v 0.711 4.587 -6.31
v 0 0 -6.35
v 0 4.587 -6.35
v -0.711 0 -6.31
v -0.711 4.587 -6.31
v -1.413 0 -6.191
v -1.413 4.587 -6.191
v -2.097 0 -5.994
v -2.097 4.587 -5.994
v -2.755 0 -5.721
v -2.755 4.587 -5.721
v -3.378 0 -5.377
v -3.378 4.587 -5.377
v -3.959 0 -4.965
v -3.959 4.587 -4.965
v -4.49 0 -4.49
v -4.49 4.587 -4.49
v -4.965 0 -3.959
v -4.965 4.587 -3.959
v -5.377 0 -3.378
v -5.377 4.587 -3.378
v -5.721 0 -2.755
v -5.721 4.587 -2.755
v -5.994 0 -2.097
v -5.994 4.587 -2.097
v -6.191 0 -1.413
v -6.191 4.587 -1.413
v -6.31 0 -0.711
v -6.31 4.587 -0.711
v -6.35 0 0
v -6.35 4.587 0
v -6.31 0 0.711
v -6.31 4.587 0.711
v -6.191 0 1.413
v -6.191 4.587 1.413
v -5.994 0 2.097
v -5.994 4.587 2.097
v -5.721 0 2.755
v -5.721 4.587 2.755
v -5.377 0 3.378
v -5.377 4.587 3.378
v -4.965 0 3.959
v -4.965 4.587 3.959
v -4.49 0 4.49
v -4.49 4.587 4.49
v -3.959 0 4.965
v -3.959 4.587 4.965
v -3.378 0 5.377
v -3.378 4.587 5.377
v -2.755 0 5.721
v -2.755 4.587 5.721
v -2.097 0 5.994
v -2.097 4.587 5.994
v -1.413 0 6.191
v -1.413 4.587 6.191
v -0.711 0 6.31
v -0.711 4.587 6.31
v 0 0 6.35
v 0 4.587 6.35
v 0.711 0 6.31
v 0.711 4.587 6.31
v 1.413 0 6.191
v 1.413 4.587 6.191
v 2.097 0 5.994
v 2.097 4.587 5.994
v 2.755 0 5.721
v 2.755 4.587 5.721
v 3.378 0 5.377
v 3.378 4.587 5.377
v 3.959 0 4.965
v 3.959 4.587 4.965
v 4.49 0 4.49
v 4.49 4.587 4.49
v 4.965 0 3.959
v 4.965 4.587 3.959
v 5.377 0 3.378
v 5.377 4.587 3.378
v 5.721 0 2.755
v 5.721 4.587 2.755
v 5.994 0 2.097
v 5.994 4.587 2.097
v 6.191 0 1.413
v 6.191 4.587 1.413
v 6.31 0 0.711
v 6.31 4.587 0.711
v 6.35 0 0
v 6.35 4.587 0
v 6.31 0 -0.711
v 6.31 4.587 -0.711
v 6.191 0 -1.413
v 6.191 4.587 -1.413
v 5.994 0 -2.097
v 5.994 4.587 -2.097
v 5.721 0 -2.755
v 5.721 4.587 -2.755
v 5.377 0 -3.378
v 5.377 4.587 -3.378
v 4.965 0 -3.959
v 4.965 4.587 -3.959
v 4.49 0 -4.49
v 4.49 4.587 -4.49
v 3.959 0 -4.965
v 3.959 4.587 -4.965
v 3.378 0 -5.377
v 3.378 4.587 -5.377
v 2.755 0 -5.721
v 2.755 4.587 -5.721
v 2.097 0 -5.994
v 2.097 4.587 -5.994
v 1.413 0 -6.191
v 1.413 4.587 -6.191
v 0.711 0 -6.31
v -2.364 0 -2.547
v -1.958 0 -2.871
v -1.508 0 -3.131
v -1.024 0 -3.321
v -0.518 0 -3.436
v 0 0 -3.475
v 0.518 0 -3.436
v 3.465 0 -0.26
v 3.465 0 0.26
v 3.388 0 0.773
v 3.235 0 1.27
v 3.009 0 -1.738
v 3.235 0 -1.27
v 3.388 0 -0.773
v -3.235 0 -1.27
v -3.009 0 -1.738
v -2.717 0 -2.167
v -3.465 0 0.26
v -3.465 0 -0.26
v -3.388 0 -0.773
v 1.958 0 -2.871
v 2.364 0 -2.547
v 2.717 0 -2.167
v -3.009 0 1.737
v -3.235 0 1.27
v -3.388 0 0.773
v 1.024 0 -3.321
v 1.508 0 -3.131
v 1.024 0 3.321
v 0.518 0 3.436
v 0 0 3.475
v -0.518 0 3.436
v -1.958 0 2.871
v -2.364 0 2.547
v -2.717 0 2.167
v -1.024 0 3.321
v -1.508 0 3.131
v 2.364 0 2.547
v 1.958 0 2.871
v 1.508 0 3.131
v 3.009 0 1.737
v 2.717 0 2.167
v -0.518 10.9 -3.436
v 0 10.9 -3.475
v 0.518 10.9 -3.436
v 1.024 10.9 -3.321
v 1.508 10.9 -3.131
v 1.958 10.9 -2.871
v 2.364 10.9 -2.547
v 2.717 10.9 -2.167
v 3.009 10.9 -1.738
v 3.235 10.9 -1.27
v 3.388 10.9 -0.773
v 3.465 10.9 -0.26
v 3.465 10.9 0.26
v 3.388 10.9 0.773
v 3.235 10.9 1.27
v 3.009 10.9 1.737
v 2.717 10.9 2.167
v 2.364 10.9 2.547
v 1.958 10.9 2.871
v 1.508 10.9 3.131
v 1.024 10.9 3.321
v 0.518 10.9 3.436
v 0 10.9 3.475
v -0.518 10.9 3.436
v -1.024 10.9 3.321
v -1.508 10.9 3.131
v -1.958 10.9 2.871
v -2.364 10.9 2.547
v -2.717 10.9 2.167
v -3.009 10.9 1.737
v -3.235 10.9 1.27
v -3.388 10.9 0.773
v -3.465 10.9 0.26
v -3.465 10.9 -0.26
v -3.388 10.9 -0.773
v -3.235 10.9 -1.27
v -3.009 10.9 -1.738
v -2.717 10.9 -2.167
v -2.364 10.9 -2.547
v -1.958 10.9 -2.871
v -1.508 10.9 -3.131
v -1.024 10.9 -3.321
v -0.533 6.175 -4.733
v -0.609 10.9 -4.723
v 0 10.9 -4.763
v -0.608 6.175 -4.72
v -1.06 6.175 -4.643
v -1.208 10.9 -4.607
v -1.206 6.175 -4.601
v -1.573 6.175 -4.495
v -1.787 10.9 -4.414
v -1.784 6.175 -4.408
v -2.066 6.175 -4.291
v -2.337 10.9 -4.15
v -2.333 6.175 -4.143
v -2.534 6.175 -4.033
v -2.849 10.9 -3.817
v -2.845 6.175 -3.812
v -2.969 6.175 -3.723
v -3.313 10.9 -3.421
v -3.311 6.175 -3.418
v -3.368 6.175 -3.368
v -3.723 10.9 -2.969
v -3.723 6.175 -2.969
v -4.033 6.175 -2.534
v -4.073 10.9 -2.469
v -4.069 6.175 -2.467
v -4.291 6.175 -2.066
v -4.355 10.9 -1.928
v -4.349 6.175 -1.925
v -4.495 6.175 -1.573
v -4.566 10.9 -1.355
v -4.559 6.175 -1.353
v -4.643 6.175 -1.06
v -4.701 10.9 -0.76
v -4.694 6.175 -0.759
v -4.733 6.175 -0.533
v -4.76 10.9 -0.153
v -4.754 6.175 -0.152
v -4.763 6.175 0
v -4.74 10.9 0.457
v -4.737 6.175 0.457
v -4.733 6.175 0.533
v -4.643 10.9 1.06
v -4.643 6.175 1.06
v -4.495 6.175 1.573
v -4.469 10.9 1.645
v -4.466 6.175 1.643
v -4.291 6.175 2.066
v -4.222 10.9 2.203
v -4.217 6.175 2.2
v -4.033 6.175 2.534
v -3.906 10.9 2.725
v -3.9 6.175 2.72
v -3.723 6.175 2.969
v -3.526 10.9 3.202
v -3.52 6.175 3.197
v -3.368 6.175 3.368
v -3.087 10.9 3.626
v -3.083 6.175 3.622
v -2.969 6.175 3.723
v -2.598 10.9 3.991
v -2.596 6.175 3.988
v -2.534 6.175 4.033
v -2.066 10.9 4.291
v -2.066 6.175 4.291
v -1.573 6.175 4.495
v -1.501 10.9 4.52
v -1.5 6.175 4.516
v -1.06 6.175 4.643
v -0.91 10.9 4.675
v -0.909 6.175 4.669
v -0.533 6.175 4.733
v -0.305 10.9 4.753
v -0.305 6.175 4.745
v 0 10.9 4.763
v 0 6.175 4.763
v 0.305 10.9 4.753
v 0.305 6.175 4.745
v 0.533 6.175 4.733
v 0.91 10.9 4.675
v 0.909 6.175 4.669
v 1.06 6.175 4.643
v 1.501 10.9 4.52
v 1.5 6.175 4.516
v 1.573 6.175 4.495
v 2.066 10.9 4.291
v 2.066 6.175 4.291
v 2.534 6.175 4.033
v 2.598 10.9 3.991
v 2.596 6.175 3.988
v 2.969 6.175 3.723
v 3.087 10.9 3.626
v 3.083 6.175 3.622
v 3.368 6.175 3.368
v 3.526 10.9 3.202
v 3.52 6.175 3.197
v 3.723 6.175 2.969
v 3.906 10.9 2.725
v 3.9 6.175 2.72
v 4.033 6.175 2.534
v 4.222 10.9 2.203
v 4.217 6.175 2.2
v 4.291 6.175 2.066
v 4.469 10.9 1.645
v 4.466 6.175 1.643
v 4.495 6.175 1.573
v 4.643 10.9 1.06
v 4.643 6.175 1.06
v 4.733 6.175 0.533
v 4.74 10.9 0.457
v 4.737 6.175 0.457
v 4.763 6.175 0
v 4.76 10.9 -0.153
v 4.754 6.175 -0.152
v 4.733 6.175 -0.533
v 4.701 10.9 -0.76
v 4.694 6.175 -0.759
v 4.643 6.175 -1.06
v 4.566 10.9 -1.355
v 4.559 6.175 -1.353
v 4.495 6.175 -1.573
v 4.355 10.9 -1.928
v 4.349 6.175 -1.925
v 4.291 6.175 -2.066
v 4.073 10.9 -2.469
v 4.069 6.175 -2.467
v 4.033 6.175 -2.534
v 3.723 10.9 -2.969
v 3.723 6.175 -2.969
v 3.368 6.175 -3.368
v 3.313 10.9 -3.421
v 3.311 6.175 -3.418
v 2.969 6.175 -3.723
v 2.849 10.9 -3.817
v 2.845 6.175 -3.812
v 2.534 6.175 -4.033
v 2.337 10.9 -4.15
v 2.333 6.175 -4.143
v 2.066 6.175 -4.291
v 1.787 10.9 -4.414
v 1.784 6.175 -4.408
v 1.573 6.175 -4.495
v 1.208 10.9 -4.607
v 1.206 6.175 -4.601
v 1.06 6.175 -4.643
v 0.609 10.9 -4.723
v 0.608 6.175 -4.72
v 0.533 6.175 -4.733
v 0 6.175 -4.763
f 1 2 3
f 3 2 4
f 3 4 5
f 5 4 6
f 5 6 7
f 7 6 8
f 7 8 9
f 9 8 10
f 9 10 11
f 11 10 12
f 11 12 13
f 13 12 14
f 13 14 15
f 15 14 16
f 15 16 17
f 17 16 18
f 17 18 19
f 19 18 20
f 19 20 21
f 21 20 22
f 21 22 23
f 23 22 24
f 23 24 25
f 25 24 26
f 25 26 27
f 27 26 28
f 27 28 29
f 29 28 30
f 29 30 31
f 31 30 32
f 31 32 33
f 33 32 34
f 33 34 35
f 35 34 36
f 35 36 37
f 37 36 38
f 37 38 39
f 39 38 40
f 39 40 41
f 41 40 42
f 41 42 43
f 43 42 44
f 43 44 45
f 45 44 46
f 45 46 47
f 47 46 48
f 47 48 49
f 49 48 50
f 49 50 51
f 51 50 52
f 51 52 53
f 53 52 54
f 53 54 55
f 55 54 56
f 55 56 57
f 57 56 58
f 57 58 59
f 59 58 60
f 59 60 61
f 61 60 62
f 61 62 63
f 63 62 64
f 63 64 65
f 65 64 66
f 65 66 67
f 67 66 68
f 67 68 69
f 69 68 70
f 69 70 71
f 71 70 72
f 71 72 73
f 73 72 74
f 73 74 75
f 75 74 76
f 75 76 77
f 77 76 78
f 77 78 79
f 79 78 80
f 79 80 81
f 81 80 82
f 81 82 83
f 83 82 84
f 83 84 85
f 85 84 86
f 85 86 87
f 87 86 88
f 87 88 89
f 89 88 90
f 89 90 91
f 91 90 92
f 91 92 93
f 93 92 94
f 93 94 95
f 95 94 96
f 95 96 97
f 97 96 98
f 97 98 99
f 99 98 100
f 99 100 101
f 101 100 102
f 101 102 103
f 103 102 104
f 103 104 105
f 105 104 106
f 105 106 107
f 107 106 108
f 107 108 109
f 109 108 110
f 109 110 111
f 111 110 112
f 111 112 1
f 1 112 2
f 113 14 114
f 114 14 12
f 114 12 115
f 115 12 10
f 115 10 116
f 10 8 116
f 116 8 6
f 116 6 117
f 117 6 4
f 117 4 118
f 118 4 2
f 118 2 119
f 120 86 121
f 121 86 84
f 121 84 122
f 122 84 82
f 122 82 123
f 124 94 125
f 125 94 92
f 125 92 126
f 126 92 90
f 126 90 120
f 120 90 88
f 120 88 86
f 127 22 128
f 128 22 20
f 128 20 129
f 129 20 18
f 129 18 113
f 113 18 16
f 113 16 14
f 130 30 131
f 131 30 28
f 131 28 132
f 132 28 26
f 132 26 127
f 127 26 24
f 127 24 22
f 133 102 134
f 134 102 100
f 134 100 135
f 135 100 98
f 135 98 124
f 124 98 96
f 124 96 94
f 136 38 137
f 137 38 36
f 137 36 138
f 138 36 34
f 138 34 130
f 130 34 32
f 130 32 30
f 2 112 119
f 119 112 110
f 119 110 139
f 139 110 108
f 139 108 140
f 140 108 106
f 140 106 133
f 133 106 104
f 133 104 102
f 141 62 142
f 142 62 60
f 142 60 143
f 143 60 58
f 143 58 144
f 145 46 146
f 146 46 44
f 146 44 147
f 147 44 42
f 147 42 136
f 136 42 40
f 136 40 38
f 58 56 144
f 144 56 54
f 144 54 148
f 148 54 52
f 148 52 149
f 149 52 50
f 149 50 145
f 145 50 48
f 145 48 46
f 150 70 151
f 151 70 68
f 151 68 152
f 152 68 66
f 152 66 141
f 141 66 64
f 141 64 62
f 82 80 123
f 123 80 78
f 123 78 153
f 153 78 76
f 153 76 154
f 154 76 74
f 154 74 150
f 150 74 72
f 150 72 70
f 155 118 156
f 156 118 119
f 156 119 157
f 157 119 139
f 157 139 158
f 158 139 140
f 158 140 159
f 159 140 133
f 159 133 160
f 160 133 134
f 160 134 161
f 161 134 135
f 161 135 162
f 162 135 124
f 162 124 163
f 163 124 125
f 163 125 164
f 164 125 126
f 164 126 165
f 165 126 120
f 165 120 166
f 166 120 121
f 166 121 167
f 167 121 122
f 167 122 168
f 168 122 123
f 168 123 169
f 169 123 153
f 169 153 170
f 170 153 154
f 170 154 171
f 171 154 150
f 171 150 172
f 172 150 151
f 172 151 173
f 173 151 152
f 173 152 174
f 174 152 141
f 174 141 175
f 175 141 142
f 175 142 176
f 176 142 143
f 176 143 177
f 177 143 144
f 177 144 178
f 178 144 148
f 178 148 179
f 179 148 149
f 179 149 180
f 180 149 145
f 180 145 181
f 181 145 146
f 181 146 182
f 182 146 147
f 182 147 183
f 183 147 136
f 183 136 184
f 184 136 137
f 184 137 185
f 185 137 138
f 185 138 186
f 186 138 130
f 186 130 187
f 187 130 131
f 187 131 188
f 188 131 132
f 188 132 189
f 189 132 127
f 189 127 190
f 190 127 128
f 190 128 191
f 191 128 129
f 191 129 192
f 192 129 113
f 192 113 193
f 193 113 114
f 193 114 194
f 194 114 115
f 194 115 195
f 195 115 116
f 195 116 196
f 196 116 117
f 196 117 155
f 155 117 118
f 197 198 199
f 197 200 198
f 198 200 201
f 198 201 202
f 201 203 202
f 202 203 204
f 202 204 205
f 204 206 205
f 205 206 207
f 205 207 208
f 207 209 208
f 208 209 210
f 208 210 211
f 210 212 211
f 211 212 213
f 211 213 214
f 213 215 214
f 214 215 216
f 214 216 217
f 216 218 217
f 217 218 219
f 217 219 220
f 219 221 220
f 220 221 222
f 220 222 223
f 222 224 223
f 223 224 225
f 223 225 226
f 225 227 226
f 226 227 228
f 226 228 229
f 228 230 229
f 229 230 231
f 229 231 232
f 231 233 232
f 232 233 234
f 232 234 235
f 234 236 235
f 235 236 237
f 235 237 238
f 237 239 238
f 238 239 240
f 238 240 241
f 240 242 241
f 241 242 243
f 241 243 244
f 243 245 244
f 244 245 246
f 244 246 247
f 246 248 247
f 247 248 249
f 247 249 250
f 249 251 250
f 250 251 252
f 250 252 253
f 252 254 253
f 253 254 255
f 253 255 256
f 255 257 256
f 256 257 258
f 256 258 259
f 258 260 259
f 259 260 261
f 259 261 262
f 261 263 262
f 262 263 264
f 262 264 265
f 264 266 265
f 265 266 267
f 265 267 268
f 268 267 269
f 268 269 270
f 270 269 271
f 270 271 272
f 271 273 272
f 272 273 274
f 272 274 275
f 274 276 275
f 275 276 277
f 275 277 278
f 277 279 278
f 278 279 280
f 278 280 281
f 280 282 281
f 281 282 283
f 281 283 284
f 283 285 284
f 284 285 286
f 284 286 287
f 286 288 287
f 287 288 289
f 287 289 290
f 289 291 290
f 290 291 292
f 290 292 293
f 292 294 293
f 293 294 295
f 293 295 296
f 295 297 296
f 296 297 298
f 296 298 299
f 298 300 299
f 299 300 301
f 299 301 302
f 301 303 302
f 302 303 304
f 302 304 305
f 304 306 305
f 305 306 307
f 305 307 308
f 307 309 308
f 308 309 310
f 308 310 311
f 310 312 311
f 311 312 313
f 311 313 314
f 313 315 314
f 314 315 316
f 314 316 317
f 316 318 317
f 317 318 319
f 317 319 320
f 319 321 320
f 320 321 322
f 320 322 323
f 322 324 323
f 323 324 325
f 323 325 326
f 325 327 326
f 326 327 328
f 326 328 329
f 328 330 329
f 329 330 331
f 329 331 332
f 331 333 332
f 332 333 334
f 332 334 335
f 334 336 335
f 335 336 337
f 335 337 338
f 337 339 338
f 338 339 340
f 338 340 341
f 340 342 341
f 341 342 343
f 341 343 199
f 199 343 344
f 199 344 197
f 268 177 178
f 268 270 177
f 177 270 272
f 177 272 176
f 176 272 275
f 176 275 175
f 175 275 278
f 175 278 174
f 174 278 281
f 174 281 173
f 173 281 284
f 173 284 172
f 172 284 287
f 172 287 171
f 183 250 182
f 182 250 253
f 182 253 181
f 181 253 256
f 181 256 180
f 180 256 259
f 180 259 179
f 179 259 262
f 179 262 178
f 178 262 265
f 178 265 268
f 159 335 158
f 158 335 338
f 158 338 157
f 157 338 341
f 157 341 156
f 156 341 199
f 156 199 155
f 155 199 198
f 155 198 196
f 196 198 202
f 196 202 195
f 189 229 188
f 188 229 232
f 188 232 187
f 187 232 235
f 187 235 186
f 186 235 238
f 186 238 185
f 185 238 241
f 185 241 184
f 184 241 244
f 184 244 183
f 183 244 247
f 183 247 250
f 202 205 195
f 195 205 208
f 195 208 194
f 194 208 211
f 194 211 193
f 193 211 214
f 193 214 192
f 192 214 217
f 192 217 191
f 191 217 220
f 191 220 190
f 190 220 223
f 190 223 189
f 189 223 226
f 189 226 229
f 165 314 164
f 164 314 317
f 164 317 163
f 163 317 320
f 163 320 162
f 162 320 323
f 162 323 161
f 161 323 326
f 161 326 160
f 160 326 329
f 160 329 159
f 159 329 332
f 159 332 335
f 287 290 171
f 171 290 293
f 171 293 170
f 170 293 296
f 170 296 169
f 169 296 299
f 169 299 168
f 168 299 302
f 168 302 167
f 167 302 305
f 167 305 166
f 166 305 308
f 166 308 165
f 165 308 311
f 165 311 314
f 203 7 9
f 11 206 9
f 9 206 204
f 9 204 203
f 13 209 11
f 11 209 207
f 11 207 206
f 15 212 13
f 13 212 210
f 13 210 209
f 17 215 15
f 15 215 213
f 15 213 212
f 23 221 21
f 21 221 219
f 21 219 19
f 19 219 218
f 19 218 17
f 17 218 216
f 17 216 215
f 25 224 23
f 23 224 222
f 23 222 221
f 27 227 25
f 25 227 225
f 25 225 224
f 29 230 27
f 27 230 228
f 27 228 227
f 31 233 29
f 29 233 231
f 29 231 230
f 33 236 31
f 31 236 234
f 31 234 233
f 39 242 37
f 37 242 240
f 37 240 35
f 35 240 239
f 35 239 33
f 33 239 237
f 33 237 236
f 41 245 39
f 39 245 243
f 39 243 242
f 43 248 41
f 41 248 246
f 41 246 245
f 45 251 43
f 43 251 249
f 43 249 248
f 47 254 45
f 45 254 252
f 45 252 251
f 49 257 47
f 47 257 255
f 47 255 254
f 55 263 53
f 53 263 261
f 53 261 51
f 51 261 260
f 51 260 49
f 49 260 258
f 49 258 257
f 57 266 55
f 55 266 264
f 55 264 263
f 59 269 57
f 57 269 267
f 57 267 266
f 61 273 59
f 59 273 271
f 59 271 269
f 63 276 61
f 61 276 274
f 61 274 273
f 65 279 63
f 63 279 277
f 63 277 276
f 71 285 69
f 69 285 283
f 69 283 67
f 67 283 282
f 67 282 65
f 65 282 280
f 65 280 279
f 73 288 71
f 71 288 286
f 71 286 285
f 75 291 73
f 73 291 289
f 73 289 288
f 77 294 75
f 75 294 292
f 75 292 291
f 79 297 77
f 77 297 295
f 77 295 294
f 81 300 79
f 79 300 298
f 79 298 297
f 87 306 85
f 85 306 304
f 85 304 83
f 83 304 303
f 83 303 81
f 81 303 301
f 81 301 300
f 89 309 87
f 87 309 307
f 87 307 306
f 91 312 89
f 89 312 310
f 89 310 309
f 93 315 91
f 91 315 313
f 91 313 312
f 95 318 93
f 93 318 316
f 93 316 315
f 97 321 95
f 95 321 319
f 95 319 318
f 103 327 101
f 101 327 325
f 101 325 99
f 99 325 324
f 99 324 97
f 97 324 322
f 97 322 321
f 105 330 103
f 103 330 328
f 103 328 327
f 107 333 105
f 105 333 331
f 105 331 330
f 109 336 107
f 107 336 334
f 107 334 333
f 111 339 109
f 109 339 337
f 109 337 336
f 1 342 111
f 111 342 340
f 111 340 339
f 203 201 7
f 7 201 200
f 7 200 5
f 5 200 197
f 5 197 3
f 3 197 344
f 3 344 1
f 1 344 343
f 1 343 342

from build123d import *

# Parameters (mm, degrees)
SKETCH1_R           = 6.35
SKETCH1_R_2         = 4.7625
BOSS_EXTRUDE1_DEPTH = 3.175
SKETCH1_3_R         = 4.7625
SKETCH1_3_R_2       = 3.475
BOSS_EXTRUDE2_DEPTH = 10.9
CHAMFER1_SIZE       = 3


with BuildPart() as part:
    # Sketch1 → Boss-Extrude1 (new body)
    with BuildSketch(Plane(origin=(0, 0, 0), x_dir=(1, 0, 0), z_dir=(0, 1, 0))):
        with Locations(Location((0, 0, 0), (0, 0, 270))):
            Circle(SKETCH1_R)
        with Locations(Location((0, 0, 0), (0, 0, 270))):
            Circle(SKETCH1_R_2, mode=Mode.SUBTRACT)
    extrude(amount=BOSS_EXTRUDE1_DEPTH)

    # Sketch1<3> → Boss-Extrude2 (add)
    with BuildSketch(Plane(origin=(0, 0, 0), x_dir=(1, 0, 0), z_dir=(0, 1, 0))):
        with Locations(Location((0, 0, 0), (0, 0, 270))):
            Circle(SKETCH1_3_R)
        with Locations(Location((0, 0, 0), (0, 0, 270))):
            Circle(SKETCH1_3_R_2, mode=Mode.SUBTRACT)
    extrude(amount=BOSS_EXTRUDE2_DEPTH)

    # Chamfer1
    # the kernel refuses this chamfer: 3 mm, written as the material it adds along each edge
    with BuildSketch(Plane(origin=(0, 3.175, 0), x_dir=(0, 0, 1), z_dir=(-1, 0, 0))) as chamfer1_piece_1_section:
        Polygon((4.7625 + CHAMFER1_SIZE, 0), (4.7625, CHAMFER1_SIZE), (4.7625, 0), align=None)
    chamfer1_piece_1 = revolve(axis=Axis((0, 3.175, 0), (0, 1, 0)), mode=Mode.PRIVATE)
    chamfer1_piece_1 = chamfer1_piece_1 & Plane(origin=(0, 5.38786909, 0), x_dir=(0, 0, 1), z_dir=(0, -1, 0)) * Cylinder(6.35, 32, mode=Mode.PRIVATE)
    add(chamfer1_piece_1)


solid = part.part
